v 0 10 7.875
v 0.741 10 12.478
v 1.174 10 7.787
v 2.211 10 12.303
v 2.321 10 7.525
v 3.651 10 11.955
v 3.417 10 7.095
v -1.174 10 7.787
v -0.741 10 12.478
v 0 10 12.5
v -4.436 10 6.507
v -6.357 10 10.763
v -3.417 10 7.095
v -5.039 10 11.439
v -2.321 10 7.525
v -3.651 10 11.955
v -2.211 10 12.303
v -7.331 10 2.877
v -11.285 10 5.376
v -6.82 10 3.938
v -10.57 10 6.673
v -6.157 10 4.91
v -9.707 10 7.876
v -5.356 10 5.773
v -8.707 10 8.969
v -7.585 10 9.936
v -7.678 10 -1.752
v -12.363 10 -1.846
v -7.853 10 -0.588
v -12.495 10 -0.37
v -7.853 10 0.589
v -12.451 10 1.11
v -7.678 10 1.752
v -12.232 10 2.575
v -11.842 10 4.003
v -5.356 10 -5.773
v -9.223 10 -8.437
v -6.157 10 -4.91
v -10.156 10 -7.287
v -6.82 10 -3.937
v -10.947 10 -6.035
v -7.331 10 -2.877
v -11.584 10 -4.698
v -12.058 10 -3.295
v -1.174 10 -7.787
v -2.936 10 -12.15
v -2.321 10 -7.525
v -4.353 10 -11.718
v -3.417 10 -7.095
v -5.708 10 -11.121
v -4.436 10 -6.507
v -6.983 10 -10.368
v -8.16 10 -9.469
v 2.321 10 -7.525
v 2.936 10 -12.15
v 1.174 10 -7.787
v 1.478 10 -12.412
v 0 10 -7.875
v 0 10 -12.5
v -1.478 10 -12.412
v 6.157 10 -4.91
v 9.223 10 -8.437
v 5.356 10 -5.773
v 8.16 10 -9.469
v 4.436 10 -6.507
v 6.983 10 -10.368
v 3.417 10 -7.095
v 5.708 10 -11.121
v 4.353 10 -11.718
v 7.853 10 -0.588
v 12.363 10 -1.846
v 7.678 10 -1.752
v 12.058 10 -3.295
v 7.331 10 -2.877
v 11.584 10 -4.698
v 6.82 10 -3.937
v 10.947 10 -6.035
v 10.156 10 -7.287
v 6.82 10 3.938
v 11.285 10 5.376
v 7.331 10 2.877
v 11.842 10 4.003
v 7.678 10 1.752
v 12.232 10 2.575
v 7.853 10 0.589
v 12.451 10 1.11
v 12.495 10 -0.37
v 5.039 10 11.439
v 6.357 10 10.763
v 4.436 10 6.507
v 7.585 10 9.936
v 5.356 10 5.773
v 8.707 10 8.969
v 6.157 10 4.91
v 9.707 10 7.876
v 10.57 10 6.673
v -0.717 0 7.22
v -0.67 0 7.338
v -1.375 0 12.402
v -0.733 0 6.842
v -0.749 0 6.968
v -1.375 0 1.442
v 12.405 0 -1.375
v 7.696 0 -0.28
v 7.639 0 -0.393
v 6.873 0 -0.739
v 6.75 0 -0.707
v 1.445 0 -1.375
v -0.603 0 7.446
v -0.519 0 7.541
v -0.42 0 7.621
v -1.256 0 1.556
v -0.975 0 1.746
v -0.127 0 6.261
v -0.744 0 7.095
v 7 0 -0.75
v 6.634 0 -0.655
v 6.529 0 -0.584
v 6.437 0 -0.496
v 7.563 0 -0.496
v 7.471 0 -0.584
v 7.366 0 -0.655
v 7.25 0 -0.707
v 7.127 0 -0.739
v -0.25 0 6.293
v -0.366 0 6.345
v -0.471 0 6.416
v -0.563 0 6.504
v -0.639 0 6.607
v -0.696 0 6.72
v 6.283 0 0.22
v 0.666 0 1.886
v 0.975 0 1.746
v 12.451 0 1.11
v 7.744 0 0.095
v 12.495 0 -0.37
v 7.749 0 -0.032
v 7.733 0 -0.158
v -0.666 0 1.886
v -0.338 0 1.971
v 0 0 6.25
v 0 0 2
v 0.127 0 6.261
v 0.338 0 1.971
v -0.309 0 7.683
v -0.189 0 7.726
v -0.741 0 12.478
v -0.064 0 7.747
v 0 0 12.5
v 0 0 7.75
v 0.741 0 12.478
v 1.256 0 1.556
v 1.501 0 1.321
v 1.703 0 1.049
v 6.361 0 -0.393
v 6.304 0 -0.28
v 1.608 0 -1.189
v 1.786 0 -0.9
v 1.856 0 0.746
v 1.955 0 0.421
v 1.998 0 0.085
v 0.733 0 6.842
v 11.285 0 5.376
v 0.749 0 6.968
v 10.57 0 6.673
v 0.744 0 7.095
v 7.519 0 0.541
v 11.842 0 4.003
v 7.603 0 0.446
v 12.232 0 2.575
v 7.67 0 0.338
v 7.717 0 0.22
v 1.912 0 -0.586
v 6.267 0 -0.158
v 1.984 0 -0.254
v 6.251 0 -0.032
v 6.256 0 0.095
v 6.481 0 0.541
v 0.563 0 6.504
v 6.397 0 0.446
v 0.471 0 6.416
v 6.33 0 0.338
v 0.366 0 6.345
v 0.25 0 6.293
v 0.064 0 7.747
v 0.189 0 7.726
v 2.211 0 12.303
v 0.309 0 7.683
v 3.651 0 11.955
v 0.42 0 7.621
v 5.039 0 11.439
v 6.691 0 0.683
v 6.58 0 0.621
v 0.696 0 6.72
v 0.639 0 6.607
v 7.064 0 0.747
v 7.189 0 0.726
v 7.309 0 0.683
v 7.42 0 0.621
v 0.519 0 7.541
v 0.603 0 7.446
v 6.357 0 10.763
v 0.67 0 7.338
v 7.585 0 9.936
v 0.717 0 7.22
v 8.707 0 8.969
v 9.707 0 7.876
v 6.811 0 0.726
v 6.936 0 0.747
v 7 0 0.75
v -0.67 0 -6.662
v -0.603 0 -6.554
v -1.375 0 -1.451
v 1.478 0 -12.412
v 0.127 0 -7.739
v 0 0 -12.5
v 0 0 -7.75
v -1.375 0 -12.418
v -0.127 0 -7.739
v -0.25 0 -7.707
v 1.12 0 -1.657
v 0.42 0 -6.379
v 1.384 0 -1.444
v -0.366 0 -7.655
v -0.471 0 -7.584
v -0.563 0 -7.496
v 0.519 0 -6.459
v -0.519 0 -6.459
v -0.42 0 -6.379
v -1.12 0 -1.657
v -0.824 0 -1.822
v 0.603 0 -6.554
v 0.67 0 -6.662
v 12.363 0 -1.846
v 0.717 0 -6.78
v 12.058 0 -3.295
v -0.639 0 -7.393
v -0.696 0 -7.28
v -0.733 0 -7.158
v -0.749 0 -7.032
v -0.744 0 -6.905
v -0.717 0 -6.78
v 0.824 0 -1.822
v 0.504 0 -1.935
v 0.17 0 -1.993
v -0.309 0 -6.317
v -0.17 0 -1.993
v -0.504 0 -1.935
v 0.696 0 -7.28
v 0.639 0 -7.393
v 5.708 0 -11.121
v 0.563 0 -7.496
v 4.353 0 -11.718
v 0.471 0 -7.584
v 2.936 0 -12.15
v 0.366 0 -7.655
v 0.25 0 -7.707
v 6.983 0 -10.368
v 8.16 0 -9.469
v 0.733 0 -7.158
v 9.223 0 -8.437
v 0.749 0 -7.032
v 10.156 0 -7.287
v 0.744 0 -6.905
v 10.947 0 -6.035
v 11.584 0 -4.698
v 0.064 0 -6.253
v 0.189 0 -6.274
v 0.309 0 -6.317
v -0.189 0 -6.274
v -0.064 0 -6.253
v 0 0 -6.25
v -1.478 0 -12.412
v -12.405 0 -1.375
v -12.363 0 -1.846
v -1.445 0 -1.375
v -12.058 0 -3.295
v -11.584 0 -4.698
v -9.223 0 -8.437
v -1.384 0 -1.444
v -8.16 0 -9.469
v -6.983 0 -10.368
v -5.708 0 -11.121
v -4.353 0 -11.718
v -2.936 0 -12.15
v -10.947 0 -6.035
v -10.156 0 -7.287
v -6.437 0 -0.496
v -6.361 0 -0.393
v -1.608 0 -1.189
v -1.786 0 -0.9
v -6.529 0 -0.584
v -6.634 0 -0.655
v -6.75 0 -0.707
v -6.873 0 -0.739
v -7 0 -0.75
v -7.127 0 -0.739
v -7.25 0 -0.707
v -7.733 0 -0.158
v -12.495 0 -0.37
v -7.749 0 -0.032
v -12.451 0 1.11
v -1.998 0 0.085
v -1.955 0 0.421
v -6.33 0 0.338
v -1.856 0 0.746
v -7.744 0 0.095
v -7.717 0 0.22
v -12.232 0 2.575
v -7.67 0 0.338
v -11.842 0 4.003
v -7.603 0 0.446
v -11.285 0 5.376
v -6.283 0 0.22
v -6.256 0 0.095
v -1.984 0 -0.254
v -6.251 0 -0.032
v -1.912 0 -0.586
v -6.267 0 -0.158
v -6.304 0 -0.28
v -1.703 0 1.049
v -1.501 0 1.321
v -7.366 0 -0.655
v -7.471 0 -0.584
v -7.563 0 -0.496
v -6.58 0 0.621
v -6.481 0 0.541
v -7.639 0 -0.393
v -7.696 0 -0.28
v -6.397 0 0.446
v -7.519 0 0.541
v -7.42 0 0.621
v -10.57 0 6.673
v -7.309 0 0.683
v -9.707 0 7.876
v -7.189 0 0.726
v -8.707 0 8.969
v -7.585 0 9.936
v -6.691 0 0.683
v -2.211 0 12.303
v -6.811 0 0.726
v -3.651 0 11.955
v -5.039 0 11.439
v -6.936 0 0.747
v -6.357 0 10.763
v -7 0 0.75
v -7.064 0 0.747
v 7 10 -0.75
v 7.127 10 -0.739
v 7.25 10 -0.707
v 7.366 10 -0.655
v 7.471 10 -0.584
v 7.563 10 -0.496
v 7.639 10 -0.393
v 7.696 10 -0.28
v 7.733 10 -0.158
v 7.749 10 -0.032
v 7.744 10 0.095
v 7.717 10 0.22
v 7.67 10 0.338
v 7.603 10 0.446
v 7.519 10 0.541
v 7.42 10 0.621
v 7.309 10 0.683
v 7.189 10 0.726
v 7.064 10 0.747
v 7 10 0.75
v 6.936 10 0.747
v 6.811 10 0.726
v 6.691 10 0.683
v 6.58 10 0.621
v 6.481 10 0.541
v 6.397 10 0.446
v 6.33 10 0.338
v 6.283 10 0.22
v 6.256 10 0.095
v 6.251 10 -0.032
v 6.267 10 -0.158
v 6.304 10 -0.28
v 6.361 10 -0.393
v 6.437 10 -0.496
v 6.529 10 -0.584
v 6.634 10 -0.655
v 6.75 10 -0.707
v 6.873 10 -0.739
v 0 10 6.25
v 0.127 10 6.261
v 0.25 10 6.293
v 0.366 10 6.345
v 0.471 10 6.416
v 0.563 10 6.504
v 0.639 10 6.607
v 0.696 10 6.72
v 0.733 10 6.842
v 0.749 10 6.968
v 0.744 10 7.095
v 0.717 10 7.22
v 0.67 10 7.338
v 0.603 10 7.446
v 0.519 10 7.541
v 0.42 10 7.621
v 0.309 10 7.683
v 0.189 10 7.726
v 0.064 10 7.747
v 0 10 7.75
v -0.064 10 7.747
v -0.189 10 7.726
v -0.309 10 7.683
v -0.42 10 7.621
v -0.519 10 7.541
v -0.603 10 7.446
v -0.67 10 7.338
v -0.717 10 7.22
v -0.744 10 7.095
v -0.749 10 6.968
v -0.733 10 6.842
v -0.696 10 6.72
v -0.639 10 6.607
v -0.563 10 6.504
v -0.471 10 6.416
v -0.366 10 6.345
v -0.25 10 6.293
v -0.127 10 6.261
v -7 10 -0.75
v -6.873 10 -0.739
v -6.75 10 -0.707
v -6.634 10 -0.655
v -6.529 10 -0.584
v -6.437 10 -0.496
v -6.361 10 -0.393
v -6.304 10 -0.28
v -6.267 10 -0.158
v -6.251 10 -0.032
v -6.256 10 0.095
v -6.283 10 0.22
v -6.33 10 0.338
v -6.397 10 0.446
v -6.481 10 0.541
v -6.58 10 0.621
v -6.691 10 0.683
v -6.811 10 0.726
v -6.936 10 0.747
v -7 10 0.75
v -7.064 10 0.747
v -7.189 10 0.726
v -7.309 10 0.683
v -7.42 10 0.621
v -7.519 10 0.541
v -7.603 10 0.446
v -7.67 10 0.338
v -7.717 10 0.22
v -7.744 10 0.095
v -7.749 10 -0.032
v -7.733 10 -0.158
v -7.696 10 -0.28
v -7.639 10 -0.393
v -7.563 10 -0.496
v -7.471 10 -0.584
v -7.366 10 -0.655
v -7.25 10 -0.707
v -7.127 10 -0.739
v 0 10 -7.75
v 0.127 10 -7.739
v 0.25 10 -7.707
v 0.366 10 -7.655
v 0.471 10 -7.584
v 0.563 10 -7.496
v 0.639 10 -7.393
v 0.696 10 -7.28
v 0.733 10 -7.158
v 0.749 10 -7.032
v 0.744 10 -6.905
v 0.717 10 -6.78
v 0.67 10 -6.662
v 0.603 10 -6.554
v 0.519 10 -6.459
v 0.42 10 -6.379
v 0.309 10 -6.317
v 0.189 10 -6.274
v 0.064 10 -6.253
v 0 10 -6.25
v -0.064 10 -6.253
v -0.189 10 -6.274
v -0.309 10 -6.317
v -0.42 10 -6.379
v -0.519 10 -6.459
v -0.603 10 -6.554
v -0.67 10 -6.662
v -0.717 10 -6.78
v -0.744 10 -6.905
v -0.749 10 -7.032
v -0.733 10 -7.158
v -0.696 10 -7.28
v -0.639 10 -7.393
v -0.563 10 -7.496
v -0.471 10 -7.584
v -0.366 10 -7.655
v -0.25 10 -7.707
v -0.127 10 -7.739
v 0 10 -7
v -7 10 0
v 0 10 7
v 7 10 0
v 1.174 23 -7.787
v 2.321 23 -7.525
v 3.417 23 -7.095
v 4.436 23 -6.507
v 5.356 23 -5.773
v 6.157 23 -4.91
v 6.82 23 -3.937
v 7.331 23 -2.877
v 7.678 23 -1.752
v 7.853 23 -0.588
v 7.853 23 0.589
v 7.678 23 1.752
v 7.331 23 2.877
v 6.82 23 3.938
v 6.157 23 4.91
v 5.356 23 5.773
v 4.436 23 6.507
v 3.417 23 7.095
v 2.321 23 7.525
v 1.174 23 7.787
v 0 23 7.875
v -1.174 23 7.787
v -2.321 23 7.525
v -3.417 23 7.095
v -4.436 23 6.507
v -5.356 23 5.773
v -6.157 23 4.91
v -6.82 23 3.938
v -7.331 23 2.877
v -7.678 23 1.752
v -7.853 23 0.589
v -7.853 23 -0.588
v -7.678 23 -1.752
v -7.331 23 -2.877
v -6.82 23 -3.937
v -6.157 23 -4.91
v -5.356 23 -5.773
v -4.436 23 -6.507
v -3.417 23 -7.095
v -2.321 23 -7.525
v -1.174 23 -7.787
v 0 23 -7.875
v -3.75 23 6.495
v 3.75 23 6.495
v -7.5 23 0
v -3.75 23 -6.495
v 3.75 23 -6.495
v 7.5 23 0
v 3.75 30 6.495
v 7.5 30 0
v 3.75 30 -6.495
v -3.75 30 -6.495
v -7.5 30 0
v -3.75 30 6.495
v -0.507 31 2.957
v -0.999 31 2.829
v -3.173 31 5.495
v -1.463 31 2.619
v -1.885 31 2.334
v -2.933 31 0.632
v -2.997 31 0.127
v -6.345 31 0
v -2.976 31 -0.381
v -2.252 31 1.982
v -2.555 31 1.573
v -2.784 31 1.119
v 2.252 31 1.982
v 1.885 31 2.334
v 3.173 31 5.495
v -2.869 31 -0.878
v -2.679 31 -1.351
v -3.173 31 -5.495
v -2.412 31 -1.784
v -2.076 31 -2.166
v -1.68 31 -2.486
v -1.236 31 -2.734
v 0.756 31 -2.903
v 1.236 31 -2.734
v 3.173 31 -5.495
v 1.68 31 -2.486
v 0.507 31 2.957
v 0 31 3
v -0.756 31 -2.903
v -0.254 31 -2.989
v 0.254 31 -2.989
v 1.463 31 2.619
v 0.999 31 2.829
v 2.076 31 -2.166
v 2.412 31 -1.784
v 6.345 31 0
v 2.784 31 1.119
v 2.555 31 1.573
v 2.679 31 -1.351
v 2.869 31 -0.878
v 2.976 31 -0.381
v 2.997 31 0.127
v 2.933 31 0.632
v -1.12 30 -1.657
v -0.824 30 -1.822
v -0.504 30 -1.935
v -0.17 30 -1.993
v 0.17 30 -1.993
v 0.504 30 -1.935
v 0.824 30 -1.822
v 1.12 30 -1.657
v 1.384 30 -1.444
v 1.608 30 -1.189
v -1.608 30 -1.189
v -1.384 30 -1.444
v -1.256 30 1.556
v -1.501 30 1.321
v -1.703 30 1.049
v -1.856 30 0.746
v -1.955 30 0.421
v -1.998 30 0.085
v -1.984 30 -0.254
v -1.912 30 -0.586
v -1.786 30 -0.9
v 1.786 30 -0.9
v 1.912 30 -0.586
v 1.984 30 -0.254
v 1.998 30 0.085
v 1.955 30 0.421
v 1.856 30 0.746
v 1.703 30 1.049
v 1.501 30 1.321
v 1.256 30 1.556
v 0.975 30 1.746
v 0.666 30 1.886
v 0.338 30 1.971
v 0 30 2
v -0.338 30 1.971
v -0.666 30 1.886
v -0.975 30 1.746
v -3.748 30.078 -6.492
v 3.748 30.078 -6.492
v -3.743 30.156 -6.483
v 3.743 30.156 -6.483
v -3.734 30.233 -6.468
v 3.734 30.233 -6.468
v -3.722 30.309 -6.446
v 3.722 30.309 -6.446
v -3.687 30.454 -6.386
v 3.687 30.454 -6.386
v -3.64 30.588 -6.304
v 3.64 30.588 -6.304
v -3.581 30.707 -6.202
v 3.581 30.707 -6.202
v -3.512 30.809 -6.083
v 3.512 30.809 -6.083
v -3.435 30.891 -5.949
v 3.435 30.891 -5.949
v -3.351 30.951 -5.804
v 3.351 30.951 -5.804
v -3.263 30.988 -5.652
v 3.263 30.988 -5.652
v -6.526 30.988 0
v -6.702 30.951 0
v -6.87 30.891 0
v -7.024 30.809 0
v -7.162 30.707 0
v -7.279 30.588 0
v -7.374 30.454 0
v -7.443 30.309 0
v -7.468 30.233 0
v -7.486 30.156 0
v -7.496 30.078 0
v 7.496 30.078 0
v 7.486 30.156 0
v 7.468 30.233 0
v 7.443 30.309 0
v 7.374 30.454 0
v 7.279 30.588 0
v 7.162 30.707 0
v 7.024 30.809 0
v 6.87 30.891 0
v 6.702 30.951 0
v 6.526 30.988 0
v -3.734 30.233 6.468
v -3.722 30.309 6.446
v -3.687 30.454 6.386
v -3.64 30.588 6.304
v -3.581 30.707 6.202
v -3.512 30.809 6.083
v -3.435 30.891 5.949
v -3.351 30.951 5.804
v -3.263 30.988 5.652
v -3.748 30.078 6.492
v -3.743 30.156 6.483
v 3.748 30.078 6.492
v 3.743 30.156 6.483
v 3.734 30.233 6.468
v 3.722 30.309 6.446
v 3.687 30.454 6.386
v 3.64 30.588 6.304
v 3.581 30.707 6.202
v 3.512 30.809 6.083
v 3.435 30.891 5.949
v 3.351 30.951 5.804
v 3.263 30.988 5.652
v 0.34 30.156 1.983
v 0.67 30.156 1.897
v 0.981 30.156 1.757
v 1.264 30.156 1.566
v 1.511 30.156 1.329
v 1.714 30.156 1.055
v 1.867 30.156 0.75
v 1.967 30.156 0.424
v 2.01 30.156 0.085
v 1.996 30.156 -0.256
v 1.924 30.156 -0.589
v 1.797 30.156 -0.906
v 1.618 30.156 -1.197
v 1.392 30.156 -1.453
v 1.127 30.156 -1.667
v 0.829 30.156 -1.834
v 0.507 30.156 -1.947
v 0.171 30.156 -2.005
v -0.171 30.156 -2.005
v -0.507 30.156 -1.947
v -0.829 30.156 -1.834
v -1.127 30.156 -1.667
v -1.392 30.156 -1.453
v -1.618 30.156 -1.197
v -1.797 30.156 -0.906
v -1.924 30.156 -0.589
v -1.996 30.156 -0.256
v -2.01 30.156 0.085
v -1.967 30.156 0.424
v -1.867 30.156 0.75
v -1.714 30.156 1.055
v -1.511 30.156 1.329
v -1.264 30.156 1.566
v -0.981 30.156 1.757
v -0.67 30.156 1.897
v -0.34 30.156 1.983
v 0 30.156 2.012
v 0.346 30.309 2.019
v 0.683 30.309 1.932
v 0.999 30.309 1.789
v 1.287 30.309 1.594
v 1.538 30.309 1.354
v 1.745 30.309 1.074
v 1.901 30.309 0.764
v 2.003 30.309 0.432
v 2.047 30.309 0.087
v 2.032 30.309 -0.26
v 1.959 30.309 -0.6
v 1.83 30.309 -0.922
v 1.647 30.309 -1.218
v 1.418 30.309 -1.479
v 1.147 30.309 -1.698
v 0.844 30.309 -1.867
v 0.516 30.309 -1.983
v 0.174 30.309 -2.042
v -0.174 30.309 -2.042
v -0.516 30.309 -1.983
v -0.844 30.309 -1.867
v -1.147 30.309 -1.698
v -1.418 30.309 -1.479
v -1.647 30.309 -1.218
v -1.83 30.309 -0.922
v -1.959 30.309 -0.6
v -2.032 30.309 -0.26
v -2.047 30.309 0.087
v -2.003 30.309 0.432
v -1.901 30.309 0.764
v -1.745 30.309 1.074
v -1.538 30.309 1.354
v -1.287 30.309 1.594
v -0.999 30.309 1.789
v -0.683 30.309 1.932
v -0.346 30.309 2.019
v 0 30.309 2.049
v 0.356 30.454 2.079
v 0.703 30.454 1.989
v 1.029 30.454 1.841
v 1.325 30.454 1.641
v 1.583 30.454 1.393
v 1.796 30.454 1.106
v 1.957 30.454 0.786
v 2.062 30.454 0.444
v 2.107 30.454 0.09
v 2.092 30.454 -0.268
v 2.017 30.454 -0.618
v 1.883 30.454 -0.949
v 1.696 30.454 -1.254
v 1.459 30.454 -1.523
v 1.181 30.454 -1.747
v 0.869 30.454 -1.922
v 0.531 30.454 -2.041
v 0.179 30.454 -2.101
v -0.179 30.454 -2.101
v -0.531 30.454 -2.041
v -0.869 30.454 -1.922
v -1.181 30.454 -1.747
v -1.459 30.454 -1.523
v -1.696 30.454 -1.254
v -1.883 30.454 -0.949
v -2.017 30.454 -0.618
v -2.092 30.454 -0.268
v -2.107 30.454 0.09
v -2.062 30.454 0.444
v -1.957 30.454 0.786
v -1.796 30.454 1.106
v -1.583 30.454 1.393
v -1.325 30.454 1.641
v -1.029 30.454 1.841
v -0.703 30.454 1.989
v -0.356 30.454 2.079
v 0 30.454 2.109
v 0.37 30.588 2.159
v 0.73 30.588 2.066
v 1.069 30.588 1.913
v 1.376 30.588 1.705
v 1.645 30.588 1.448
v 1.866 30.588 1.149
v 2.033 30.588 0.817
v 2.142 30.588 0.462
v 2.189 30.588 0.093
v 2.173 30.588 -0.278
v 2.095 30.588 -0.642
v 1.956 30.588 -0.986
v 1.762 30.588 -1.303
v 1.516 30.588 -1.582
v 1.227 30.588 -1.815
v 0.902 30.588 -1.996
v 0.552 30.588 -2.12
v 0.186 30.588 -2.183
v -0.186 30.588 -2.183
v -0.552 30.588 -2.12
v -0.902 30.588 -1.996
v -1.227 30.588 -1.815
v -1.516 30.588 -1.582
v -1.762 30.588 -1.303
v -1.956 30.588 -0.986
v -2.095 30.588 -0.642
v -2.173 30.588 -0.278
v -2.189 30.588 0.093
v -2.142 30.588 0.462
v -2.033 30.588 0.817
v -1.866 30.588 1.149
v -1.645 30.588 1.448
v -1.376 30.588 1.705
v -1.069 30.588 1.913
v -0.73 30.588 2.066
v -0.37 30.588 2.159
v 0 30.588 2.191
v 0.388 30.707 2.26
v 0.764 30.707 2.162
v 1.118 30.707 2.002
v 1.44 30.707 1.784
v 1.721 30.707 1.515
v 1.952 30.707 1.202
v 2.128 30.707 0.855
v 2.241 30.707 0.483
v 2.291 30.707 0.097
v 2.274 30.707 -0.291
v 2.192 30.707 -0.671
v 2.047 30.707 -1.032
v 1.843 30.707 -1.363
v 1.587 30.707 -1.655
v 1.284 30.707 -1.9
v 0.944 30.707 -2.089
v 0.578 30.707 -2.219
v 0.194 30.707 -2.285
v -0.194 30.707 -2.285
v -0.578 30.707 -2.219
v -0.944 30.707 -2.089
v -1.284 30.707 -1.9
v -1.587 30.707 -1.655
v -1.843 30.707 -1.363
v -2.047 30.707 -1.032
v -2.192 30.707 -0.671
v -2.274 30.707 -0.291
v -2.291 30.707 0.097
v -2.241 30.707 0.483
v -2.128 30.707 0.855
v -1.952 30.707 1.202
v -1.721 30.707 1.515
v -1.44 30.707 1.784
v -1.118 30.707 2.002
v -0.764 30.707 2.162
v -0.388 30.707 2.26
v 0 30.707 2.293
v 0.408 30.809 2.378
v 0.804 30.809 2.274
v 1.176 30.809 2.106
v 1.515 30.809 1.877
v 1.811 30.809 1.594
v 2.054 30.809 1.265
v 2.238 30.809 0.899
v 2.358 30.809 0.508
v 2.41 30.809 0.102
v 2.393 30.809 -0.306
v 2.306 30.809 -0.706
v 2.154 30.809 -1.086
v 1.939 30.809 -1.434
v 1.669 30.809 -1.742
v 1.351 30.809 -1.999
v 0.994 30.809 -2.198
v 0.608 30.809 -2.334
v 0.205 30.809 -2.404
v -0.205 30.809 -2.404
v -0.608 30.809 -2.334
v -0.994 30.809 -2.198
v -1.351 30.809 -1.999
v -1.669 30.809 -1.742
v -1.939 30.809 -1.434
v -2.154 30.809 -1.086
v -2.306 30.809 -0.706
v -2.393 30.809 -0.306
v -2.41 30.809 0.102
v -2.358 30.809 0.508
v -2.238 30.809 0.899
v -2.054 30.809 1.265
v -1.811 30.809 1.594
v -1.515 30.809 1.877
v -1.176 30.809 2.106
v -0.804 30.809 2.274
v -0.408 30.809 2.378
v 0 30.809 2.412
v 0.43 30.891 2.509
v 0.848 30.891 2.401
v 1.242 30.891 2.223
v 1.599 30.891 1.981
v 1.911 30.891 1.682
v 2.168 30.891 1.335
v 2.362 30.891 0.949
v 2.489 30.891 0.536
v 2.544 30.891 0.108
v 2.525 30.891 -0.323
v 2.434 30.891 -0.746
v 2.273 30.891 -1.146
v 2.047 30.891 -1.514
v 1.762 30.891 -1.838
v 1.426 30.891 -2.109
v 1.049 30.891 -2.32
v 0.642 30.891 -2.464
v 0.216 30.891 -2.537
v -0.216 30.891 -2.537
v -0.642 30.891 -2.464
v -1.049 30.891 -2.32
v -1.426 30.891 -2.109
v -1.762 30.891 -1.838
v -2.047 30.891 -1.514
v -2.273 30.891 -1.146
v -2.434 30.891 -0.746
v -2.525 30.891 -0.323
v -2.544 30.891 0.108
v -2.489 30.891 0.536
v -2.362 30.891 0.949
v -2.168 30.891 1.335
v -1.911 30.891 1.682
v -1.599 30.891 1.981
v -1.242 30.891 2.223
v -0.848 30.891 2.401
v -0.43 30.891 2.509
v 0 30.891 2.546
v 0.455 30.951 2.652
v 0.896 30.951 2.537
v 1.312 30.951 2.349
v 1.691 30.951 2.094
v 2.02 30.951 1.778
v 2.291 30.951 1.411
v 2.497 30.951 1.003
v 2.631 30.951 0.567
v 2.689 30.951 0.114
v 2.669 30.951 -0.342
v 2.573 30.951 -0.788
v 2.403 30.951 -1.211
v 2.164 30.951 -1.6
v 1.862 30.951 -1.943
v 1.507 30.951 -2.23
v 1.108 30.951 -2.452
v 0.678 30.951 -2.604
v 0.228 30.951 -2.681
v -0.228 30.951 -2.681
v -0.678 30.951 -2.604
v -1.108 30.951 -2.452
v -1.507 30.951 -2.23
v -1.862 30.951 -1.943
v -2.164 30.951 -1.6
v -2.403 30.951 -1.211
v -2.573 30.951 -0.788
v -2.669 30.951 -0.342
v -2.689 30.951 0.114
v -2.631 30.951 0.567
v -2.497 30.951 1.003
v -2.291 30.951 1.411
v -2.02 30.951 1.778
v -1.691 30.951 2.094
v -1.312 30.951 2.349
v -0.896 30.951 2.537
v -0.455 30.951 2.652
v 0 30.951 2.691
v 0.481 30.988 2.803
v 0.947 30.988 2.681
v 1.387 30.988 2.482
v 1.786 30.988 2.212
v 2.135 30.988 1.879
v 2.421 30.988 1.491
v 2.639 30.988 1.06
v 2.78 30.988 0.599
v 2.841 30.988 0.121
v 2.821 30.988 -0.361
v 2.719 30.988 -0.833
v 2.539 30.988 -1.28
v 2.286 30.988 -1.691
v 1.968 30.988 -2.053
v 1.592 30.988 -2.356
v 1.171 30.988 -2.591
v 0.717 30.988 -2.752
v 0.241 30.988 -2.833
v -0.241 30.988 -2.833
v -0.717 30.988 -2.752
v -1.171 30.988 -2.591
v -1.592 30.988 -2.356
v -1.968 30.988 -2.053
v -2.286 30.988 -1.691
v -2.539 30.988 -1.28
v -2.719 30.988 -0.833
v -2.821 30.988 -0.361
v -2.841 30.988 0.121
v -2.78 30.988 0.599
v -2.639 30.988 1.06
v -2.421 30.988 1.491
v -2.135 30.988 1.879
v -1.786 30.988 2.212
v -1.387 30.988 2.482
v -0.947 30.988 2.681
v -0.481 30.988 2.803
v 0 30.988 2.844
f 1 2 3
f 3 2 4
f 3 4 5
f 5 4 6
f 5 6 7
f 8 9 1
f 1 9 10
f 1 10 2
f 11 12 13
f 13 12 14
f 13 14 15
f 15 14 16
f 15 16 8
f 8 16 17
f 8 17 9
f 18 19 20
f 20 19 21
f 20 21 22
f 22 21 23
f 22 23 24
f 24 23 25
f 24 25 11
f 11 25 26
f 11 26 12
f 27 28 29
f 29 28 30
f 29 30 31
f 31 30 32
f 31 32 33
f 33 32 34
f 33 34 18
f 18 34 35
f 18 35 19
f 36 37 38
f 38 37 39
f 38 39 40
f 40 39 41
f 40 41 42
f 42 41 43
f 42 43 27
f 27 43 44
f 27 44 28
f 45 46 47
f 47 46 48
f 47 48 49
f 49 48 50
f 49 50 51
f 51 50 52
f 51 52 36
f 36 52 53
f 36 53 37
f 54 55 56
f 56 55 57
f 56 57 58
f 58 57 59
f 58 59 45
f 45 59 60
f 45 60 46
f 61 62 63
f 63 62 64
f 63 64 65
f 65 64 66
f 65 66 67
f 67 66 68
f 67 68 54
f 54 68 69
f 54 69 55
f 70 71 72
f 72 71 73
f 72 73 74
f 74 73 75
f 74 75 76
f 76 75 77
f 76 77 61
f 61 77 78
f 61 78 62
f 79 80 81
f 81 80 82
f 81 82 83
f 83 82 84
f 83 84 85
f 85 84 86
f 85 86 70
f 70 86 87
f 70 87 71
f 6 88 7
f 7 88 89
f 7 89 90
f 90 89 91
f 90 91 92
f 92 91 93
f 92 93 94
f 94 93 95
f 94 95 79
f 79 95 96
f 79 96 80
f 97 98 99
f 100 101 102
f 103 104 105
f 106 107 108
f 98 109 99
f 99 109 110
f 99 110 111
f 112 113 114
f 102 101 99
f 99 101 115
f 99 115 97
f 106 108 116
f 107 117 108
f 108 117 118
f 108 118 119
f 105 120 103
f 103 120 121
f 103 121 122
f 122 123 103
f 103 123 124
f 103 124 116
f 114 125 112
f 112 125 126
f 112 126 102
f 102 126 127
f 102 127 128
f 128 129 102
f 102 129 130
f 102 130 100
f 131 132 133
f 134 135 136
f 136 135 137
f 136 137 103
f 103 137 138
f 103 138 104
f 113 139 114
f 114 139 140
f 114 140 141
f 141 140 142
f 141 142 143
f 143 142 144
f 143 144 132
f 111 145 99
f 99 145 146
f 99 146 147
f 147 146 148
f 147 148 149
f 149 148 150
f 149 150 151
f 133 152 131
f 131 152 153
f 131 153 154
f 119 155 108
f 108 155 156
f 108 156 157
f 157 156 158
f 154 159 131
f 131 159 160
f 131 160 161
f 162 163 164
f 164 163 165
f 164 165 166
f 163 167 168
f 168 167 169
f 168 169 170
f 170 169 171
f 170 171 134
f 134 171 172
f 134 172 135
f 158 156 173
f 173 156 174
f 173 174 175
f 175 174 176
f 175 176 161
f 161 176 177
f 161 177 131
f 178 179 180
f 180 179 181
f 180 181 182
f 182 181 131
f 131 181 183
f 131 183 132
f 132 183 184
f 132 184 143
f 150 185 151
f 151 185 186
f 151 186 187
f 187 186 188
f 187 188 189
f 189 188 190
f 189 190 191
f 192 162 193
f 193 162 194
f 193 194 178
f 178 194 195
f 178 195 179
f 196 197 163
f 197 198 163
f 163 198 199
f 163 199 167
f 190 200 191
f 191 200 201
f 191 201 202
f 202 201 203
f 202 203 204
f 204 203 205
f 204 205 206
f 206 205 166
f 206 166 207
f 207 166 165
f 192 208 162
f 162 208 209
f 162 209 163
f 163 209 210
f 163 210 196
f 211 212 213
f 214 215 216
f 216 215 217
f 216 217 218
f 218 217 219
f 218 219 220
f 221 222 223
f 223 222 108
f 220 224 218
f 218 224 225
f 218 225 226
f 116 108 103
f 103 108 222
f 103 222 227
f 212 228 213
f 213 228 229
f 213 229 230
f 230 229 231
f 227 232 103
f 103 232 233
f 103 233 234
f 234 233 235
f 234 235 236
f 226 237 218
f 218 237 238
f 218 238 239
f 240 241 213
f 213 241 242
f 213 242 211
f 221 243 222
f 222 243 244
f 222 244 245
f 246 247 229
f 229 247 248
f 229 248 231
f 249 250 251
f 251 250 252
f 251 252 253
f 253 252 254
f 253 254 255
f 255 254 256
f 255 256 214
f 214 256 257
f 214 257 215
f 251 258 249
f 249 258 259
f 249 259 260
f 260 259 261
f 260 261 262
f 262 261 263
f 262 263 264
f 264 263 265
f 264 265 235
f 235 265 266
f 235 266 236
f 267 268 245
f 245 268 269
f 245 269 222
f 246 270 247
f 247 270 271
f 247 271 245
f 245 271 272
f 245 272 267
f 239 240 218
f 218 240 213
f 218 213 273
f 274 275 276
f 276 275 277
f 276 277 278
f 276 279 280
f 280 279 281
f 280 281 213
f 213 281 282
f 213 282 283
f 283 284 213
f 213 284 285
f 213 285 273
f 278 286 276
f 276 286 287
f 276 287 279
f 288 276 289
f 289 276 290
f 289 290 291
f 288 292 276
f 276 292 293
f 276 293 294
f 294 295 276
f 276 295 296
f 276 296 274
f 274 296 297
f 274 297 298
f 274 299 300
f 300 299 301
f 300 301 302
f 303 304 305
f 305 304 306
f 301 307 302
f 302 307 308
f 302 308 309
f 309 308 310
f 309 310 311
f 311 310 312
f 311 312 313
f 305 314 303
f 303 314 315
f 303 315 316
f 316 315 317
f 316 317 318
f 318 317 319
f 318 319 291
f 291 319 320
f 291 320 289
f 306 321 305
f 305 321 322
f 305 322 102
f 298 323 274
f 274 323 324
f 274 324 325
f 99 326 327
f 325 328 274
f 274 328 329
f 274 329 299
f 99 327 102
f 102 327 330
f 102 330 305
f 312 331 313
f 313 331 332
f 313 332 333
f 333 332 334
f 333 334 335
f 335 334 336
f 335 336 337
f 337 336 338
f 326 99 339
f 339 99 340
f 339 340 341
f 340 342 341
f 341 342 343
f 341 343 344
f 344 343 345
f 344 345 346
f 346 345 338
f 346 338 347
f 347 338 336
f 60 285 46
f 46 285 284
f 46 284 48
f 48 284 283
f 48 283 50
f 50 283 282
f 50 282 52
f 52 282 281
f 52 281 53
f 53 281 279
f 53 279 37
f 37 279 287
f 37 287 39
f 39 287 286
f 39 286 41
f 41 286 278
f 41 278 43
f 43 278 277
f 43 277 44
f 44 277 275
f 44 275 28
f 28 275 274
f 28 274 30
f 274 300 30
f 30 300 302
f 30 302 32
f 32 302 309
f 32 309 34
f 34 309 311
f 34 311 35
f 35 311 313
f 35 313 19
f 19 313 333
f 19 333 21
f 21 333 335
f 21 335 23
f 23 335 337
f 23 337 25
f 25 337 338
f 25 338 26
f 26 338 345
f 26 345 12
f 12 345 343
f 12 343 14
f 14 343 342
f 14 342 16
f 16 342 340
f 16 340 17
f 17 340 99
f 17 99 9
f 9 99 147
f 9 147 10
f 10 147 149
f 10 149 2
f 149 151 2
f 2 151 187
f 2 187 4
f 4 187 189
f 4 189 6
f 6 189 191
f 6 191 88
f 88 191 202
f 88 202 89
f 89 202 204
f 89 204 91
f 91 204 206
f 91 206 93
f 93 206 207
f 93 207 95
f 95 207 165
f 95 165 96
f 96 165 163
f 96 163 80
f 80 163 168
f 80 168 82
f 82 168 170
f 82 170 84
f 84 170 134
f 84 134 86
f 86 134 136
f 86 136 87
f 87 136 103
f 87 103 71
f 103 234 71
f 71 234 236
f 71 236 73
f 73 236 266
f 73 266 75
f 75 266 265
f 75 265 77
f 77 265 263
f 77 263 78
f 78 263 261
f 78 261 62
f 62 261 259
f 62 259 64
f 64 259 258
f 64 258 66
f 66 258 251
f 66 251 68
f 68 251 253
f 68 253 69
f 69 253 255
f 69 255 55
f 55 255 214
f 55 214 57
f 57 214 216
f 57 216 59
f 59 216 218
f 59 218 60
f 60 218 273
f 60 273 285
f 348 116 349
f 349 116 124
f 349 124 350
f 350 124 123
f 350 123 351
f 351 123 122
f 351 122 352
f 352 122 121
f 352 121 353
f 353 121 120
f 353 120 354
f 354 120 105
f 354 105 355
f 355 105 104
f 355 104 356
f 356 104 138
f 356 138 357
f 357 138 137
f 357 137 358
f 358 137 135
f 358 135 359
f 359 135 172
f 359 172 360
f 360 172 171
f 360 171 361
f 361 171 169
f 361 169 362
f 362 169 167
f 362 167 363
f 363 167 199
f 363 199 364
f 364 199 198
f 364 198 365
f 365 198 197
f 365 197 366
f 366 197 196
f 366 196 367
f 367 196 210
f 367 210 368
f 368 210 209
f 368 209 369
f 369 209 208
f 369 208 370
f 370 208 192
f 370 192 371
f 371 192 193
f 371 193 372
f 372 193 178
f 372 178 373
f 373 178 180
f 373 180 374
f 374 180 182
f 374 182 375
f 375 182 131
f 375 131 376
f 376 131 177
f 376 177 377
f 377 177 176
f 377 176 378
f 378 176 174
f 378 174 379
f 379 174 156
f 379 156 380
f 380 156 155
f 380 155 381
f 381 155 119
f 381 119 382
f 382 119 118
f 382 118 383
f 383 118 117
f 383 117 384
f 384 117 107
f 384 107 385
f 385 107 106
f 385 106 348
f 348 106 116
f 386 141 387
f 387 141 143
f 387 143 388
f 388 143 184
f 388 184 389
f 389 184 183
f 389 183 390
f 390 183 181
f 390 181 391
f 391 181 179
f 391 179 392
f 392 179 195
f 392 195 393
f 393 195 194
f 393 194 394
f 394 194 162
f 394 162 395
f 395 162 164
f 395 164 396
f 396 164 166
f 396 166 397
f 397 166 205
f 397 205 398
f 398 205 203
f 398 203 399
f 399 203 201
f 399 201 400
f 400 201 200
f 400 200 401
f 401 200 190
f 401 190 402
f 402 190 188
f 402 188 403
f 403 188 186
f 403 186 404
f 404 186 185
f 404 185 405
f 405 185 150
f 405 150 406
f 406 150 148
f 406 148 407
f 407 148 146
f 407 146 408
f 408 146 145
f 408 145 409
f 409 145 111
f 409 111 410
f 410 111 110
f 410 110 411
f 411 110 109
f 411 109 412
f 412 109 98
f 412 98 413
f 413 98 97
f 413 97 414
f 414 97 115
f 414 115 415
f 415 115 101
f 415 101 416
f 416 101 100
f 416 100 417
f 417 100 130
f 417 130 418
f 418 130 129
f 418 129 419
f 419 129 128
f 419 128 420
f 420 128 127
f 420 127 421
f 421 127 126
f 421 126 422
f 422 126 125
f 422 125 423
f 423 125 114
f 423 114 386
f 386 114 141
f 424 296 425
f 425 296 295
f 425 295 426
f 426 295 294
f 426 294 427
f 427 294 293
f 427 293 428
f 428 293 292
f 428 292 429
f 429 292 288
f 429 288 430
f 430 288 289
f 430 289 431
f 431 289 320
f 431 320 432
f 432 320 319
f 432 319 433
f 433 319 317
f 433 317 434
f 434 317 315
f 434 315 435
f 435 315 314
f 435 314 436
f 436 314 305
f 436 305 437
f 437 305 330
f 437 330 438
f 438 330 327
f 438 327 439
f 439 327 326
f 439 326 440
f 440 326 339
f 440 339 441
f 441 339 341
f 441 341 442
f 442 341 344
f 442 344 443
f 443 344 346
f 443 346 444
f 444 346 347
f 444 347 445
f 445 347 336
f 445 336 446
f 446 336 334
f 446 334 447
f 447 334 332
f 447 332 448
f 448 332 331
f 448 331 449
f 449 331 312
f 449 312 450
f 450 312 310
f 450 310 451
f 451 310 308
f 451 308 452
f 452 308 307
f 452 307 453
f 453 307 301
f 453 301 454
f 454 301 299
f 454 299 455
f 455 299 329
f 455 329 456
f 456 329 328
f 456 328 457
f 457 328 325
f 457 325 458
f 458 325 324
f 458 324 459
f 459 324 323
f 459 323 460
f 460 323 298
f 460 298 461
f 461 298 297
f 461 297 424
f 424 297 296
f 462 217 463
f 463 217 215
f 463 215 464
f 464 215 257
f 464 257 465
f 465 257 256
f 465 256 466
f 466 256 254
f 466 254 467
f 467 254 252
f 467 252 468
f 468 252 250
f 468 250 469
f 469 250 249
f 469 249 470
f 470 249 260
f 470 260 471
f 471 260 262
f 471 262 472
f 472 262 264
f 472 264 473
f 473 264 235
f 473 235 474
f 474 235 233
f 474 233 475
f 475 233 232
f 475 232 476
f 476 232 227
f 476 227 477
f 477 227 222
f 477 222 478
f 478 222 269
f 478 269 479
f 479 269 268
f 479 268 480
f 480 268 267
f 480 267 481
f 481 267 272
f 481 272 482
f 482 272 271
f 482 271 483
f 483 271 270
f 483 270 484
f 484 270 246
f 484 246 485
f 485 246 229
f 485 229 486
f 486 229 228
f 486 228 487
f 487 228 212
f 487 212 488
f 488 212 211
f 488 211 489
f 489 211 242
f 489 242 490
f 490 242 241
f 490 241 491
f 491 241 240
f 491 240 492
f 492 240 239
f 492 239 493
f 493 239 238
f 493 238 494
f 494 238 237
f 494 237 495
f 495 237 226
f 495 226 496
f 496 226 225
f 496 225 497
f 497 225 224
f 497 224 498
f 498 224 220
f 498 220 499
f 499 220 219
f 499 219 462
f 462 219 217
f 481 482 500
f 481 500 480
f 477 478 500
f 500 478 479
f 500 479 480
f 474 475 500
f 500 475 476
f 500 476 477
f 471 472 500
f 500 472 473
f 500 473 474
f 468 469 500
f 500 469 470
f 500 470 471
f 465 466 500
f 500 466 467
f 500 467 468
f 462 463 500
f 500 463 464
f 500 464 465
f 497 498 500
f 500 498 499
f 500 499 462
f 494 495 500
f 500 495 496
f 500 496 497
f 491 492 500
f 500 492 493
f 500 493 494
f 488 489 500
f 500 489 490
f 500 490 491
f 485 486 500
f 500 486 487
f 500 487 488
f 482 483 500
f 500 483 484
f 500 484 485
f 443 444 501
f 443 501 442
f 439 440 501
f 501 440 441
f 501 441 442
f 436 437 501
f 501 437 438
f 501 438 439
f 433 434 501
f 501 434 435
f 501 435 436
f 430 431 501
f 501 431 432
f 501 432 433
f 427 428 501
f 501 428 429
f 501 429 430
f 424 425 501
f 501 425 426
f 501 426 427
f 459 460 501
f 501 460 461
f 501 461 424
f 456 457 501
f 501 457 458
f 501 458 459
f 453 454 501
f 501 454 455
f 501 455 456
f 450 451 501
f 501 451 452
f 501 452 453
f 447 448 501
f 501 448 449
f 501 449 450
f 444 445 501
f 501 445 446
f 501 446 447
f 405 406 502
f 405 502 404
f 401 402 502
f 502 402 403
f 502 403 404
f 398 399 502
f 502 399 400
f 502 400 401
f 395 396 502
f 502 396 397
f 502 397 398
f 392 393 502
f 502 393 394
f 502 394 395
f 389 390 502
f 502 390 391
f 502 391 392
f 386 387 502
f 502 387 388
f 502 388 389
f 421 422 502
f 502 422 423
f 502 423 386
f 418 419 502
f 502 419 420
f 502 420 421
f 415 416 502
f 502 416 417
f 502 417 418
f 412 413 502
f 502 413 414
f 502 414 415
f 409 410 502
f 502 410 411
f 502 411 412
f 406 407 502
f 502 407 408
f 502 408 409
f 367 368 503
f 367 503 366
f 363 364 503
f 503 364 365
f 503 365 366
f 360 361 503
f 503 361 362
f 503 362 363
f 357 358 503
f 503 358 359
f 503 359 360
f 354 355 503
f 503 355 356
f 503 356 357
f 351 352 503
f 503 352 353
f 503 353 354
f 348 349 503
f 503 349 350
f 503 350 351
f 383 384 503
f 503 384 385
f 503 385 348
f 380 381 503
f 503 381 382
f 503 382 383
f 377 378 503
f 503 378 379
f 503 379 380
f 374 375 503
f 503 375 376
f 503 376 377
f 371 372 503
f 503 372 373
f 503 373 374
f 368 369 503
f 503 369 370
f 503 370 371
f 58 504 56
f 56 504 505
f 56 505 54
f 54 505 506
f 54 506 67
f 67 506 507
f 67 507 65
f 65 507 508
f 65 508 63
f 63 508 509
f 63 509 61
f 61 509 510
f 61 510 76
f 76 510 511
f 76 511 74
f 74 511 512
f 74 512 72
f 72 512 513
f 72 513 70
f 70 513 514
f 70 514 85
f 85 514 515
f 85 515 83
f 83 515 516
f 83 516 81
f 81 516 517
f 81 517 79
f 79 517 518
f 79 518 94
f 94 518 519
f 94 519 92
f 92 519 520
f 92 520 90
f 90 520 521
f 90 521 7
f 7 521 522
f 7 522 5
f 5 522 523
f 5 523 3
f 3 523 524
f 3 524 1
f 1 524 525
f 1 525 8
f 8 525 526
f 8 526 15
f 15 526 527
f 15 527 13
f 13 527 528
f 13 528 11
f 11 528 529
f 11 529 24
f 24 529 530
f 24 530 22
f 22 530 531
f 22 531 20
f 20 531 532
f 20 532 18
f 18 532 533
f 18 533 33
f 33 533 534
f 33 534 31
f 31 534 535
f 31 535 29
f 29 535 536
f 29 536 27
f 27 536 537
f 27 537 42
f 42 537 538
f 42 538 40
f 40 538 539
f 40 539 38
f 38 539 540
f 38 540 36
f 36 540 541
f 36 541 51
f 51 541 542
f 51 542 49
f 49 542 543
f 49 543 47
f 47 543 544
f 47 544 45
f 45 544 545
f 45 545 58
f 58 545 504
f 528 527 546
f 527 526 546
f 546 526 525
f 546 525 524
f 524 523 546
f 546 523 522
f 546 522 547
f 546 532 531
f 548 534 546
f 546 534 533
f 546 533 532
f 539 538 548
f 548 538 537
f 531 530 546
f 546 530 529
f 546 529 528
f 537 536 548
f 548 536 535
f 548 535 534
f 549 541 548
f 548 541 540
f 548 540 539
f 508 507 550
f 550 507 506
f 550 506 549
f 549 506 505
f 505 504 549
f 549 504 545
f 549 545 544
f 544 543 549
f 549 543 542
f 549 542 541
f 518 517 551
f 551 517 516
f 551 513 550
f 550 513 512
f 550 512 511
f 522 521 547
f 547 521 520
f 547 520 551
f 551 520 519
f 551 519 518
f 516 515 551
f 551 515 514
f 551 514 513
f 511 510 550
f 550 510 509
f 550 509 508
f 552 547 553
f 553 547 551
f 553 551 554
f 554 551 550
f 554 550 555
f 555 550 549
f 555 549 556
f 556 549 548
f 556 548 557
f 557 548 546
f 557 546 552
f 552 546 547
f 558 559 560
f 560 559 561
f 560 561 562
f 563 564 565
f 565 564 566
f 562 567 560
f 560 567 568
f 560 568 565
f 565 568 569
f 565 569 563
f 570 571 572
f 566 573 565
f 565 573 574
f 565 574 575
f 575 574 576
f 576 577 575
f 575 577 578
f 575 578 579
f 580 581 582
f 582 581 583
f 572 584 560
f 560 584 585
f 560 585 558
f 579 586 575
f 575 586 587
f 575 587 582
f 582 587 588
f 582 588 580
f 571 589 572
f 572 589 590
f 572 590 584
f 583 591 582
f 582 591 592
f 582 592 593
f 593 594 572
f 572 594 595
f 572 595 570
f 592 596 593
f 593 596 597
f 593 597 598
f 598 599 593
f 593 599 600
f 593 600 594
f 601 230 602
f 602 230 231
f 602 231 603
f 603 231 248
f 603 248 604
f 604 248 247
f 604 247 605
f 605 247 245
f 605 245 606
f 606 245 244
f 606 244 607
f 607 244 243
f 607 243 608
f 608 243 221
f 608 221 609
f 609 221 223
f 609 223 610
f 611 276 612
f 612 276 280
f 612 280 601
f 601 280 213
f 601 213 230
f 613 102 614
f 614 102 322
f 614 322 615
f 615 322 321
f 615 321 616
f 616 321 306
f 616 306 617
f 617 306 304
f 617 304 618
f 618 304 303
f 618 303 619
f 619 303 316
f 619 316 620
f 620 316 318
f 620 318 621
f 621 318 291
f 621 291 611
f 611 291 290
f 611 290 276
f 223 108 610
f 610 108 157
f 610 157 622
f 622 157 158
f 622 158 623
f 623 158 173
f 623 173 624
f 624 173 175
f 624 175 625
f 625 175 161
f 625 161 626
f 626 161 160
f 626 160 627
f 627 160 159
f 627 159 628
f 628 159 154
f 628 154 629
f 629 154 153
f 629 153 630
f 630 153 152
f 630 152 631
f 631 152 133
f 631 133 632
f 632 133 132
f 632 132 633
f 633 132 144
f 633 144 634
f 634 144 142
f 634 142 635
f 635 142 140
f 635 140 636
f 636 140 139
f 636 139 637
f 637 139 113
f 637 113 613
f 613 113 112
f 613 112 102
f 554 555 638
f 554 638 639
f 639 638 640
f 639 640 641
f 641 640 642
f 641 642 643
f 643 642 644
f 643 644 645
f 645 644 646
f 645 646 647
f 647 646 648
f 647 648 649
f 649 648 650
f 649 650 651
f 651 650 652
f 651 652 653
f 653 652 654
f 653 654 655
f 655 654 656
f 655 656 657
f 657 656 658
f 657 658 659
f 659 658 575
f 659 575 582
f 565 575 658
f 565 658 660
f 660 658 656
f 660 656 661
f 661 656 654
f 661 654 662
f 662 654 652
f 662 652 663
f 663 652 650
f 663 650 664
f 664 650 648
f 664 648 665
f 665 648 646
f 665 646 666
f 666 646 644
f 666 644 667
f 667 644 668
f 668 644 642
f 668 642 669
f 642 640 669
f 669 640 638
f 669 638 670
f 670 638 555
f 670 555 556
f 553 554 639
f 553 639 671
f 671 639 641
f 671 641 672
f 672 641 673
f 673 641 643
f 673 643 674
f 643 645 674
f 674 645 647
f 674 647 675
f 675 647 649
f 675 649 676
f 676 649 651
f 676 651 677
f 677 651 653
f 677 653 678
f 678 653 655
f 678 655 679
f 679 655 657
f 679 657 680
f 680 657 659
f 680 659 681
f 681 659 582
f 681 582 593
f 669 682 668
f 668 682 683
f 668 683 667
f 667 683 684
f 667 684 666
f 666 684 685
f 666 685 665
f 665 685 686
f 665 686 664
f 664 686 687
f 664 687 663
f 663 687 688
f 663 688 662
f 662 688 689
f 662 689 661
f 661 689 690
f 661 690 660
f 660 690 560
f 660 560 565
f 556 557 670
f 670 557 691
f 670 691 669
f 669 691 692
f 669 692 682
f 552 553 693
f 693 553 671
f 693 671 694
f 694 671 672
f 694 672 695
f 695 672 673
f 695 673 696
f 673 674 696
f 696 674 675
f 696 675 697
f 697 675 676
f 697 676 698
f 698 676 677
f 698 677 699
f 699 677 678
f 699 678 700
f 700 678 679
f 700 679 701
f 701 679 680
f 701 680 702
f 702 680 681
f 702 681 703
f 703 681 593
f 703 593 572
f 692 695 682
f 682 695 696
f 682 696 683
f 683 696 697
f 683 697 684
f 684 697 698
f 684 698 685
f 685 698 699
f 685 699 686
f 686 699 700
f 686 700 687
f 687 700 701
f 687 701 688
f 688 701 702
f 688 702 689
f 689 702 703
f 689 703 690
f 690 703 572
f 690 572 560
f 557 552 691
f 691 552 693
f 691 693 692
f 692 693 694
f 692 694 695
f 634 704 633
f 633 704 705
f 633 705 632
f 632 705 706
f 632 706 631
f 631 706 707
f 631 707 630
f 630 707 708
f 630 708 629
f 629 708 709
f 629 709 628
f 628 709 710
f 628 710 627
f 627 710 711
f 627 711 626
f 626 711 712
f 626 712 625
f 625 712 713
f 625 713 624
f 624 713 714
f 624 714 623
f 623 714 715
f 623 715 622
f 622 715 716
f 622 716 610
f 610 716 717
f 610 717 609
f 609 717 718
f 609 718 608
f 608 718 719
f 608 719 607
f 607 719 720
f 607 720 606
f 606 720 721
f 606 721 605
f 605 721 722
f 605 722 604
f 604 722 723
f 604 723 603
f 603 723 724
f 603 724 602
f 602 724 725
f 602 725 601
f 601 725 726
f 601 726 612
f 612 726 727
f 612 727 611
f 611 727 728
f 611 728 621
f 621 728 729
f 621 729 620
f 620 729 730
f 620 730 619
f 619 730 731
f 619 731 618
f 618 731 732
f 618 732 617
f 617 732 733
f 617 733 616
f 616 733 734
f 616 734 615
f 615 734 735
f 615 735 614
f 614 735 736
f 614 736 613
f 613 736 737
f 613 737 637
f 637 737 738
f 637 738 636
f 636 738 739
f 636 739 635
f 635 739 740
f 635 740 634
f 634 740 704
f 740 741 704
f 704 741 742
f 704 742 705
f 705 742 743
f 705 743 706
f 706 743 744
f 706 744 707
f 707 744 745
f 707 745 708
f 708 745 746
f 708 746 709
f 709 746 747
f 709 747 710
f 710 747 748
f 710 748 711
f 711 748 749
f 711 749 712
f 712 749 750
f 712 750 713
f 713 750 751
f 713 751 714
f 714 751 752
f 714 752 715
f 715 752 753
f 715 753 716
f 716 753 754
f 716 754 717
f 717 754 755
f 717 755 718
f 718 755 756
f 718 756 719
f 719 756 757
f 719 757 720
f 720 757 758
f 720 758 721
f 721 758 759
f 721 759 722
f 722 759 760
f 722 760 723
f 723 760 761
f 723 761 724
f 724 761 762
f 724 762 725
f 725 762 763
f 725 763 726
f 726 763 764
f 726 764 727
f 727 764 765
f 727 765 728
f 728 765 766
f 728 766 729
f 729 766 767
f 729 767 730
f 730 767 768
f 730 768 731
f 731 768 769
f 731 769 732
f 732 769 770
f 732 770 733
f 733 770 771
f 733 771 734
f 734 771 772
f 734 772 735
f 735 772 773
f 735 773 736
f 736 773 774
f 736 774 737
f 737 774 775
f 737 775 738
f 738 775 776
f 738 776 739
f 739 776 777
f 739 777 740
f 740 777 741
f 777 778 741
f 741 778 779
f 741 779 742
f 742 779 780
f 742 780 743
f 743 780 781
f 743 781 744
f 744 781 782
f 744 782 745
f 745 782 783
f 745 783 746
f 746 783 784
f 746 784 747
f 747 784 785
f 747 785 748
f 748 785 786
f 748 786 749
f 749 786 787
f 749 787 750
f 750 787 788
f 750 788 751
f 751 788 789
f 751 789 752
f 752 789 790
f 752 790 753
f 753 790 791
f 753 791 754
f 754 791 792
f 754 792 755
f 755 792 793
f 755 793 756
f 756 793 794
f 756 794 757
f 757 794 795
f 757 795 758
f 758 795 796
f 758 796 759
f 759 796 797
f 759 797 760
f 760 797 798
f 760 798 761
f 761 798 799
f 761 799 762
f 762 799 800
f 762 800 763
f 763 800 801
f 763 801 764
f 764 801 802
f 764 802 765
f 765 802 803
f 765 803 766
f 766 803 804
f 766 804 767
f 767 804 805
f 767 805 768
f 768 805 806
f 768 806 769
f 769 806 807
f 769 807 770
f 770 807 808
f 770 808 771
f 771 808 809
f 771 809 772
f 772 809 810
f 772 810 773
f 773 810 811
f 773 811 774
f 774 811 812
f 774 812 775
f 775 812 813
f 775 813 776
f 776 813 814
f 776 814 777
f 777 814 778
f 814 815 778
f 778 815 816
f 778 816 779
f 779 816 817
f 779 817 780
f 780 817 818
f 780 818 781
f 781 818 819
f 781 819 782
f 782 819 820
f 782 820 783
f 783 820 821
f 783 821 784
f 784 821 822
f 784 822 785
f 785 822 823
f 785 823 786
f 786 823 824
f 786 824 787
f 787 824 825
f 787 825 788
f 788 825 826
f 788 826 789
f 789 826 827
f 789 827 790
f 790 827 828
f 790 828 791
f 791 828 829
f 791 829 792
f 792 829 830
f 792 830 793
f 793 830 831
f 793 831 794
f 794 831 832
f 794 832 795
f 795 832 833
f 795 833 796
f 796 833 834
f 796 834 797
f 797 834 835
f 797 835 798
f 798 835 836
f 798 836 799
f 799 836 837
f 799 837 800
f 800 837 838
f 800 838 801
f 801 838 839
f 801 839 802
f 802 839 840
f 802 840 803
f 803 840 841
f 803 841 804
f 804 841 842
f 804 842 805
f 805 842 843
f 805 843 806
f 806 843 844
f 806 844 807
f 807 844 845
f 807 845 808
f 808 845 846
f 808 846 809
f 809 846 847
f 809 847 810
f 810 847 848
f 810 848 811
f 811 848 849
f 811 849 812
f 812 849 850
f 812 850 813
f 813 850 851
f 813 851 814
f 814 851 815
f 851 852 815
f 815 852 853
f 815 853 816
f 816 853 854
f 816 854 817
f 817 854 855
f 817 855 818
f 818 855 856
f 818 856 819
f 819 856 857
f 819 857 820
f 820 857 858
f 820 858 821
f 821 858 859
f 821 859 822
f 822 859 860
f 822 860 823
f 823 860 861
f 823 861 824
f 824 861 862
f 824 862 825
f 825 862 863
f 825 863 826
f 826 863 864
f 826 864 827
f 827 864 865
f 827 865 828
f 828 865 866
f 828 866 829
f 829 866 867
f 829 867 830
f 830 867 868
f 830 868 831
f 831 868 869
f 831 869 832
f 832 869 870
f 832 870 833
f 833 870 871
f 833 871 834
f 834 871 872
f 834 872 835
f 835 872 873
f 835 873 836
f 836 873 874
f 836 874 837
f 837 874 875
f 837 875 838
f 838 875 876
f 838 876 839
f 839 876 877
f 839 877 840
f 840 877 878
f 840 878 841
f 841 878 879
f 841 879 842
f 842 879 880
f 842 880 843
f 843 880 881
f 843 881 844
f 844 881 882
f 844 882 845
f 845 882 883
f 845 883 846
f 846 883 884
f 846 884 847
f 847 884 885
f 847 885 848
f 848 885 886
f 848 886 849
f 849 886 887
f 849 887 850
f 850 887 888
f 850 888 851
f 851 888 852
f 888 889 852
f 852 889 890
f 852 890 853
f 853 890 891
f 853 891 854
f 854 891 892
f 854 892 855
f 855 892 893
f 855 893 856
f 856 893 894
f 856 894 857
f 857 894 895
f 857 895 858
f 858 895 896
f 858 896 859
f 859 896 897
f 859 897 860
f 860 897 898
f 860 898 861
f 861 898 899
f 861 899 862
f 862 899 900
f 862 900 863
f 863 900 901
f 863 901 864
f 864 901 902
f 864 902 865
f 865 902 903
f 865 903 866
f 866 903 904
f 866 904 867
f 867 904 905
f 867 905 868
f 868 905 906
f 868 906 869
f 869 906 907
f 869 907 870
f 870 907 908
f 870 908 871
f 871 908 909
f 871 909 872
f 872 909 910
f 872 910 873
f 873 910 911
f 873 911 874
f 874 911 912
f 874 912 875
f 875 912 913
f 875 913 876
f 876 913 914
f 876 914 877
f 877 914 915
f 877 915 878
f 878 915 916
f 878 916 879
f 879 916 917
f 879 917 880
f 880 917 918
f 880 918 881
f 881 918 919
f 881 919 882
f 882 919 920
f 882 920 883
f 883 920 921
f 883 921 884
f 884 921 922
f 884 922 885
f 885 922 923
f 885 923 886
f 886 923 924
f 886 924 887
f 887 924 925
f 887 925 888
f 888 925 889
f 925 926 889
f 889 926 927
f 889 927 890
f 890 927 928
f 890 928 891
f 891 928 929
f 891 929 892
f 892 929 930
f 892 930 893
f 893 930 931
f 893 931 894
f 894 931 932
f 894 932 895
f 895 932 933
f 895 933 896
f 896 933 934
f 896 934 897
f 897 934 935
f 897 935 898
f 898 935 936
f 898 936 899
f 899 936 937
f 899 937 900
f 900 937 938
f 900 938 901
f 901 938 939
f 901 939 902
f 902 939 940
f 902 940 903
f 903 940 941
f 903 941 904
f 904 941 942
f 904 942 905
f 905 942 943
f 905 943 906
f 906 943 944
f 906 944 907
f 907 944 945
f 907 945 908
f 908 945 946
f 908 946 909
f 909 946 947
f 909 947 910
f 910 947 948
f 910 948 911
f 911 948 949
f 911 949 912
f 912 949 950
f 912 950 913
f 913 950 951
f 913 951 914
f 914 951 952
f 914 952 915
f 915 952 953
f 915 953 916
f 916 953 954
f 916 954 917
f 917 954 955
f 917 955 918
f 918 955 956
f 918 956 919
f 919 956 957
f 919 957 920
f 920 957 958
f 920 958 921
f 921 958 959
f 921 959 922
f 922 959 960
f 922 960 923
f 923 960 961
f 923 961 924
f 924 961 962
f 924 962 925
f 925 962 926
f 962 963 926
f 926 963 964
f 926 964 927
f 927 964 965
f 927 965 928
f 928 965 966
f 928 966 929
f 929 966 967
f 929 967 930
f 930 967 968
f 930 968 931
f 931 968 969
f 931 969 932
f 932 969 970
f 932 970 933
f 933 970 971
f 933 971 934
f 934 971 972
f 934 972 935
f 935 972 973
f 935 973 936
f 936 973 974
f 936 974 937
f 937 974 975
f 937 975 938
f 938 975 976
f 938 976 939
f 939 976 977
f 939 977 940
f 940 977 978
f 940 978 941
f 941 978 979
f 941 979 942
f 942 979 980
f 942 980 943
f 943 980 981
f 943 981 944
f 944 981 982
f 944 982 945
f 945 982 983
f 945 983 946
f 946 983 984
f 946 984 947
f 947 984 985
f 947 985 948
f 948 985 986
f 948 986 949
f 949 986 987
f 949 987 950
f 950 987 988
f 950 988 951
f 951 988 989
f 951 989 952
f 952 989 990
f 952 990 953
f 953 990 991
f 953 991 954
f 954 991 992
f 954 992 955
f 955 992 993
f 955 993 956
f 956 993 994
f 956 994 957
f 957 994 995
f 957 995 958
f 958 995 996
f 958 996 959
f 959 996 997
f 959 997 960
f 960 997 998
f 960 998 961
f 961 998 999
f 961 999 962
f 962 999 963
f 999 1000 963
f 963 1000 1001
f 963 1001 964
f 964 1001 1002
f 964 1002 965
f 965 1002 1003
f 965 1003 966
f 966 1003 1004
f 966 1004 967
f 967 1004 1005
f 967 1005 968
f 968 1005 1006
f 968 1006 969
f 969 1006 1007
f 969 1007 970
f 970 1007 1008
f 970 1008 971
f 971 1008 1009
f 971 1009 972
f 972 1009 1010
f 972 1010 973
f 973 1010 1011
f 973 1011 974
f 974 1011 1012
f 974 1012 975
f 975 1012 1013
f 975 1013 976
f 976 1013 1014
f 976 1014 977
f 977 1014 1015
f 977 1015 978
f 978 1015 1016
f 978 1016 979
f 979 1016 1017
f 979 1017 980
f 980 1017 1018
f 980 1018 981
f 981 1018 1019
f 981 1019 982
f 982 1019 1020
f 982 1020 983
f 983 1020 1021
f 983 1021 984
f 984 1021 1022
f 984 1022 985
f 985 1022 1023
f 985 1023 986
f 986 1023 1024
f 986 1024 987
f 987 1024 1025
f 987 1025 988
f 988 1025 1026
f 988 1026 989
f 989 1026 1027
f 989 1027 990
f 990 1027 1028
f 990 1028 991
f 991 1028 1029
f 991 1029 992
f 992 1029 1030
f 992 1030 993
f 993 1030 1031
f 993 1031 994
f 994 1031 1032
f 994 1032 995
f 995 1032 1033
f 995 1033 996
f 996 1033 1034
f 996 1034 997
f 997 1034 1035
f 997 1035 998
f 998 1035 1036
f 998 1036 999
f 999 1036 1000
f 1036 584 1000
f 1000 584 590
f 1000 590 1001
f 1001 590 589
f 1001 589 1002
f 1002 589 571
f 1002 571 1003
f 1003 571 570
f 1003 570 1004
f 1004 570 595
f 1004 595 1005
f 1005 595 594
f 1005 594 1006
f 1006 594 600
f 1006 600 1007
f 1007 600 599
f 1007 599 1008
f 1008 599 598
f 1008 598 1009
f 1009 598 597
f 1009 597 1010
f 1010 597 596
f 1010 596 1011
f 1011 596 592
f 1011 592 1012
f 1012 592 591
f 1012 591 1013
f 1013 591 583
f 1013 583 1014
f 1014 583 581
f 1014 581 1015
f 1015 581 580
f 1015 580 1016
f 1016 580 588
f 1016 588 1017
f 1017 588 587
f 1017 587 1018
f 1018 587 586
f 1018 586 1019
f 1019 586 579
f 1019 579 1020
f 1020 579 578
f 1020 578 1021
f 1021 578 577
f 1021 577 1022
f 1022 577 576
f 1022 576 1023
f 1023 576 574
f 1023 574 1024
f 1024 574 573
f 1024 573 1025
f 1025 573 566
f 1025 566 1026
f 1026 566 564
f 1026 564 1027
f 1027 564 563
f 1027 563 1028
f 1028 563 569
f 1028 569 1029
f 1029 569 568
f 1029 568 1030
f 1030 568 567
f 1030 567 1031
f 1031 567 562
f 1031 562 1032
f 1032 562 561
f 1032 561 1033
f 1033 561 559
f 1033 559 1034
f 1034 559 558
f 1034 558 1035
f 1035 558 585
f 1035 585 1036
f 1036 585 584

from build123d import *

# Parameters (mm, degrees)
CROQUIS1_R              = 12.5
CROQUIS1_R_2            = 0.75
SALIENTE_EXTRUIR1_DEPTH = 10
CROQUIS2_R              = 7.875
SALIENTE_EXTRUIR2_DEPTH = 13
SALIENTE_EXTRUIR3_DEPTH = 8
CROQUIS4_R              = 2
CORTAR_EXTRUIR1_DEPTH   = 32
REDONDEO1_R             = 1


with BuildPart() as part:
    # Croquis1 → Saliente-Extruir1 (new body)
    with BuildSketch(Plane(origin=(0, 0, 0), x_dir=(1, 0, 0), z_dir=(0, 1, 0))):
        Circle(CROQUIS1_R)
        with Locations((7, 0)):
            Circle(CROQUIS1_R_2, mode=Mode.SUBTRACT)
        with Locations((0, -7)):
            Circle(CROQUIS1_R_2, mode=Mode.SUBTRACT)
        with Locations((-7, 0)):
            Circle(CROQUIS1_R_2, mode=Mode.SUBTRACT)
        with Locations((0, 7)):
            Circle(CROQUIS1_R_2, mode=Mode.SUBTRACT)
    extrude(amount=SALIENTE_EXTRUIR1_DEPTH)

    # Croquis2 → Saliente-Extruir2 (add)
    with BuildSketch(Plane(origin=(0, 10, 0), x_dir=(1, 0, 0), z_dir=(0, 1, 0))):
        Circle(CROQUIS2_R)
    extrude(amount=SALIENTE_EXTRUIR2_DEPTH)

    # Croquis3 → Saliente-Extruir3 (add)
    with BuildSketch(Plane(origin=(0, 23, 0), x_dir=(1, 0, 0), z_dir=(0, 1, 0))):
        Polygon((7.5, 0), (3.75, 6.495190528), (-3.75, 6.495190528), (-7.5, 0), (-3.75, -6.495190528), (3.75, -6.495190528), align=None)
    extrude(amount=SALIENTE_EXTRUIR3_DEPTH)

    # Croquis4 → Cortar-Extruir1 (cut, through all)
    with BuildSketch(Plane(origin=(0, 31, 0), x_dir=(1, 0, 0), z_dir=(0, 1, 0))):
        Circle(CROQUIS4_R)
    extrude(amount=-CORTAR_EXTRUIR1_DEPTH, mode=Mode.SUBTRACT)

    # Redondeo1
    redondeo1_edges = [part.edges().sort_by_distance(p)[0] for p in [
        (5.625, 31, 3.247595264),
        (5.625, 31, -3.247595264),
        (0, 31, -6.495190528),
        (-5.625, 31, -3.247595264),
        (-5.625, 31, 3.247595264),
        (0, 31, 6.495190528),
        (-2, 31, 0),
    ]]
    fillet(redondeo1_edges, radius=REDONDEO1_R)


solid = part.part
